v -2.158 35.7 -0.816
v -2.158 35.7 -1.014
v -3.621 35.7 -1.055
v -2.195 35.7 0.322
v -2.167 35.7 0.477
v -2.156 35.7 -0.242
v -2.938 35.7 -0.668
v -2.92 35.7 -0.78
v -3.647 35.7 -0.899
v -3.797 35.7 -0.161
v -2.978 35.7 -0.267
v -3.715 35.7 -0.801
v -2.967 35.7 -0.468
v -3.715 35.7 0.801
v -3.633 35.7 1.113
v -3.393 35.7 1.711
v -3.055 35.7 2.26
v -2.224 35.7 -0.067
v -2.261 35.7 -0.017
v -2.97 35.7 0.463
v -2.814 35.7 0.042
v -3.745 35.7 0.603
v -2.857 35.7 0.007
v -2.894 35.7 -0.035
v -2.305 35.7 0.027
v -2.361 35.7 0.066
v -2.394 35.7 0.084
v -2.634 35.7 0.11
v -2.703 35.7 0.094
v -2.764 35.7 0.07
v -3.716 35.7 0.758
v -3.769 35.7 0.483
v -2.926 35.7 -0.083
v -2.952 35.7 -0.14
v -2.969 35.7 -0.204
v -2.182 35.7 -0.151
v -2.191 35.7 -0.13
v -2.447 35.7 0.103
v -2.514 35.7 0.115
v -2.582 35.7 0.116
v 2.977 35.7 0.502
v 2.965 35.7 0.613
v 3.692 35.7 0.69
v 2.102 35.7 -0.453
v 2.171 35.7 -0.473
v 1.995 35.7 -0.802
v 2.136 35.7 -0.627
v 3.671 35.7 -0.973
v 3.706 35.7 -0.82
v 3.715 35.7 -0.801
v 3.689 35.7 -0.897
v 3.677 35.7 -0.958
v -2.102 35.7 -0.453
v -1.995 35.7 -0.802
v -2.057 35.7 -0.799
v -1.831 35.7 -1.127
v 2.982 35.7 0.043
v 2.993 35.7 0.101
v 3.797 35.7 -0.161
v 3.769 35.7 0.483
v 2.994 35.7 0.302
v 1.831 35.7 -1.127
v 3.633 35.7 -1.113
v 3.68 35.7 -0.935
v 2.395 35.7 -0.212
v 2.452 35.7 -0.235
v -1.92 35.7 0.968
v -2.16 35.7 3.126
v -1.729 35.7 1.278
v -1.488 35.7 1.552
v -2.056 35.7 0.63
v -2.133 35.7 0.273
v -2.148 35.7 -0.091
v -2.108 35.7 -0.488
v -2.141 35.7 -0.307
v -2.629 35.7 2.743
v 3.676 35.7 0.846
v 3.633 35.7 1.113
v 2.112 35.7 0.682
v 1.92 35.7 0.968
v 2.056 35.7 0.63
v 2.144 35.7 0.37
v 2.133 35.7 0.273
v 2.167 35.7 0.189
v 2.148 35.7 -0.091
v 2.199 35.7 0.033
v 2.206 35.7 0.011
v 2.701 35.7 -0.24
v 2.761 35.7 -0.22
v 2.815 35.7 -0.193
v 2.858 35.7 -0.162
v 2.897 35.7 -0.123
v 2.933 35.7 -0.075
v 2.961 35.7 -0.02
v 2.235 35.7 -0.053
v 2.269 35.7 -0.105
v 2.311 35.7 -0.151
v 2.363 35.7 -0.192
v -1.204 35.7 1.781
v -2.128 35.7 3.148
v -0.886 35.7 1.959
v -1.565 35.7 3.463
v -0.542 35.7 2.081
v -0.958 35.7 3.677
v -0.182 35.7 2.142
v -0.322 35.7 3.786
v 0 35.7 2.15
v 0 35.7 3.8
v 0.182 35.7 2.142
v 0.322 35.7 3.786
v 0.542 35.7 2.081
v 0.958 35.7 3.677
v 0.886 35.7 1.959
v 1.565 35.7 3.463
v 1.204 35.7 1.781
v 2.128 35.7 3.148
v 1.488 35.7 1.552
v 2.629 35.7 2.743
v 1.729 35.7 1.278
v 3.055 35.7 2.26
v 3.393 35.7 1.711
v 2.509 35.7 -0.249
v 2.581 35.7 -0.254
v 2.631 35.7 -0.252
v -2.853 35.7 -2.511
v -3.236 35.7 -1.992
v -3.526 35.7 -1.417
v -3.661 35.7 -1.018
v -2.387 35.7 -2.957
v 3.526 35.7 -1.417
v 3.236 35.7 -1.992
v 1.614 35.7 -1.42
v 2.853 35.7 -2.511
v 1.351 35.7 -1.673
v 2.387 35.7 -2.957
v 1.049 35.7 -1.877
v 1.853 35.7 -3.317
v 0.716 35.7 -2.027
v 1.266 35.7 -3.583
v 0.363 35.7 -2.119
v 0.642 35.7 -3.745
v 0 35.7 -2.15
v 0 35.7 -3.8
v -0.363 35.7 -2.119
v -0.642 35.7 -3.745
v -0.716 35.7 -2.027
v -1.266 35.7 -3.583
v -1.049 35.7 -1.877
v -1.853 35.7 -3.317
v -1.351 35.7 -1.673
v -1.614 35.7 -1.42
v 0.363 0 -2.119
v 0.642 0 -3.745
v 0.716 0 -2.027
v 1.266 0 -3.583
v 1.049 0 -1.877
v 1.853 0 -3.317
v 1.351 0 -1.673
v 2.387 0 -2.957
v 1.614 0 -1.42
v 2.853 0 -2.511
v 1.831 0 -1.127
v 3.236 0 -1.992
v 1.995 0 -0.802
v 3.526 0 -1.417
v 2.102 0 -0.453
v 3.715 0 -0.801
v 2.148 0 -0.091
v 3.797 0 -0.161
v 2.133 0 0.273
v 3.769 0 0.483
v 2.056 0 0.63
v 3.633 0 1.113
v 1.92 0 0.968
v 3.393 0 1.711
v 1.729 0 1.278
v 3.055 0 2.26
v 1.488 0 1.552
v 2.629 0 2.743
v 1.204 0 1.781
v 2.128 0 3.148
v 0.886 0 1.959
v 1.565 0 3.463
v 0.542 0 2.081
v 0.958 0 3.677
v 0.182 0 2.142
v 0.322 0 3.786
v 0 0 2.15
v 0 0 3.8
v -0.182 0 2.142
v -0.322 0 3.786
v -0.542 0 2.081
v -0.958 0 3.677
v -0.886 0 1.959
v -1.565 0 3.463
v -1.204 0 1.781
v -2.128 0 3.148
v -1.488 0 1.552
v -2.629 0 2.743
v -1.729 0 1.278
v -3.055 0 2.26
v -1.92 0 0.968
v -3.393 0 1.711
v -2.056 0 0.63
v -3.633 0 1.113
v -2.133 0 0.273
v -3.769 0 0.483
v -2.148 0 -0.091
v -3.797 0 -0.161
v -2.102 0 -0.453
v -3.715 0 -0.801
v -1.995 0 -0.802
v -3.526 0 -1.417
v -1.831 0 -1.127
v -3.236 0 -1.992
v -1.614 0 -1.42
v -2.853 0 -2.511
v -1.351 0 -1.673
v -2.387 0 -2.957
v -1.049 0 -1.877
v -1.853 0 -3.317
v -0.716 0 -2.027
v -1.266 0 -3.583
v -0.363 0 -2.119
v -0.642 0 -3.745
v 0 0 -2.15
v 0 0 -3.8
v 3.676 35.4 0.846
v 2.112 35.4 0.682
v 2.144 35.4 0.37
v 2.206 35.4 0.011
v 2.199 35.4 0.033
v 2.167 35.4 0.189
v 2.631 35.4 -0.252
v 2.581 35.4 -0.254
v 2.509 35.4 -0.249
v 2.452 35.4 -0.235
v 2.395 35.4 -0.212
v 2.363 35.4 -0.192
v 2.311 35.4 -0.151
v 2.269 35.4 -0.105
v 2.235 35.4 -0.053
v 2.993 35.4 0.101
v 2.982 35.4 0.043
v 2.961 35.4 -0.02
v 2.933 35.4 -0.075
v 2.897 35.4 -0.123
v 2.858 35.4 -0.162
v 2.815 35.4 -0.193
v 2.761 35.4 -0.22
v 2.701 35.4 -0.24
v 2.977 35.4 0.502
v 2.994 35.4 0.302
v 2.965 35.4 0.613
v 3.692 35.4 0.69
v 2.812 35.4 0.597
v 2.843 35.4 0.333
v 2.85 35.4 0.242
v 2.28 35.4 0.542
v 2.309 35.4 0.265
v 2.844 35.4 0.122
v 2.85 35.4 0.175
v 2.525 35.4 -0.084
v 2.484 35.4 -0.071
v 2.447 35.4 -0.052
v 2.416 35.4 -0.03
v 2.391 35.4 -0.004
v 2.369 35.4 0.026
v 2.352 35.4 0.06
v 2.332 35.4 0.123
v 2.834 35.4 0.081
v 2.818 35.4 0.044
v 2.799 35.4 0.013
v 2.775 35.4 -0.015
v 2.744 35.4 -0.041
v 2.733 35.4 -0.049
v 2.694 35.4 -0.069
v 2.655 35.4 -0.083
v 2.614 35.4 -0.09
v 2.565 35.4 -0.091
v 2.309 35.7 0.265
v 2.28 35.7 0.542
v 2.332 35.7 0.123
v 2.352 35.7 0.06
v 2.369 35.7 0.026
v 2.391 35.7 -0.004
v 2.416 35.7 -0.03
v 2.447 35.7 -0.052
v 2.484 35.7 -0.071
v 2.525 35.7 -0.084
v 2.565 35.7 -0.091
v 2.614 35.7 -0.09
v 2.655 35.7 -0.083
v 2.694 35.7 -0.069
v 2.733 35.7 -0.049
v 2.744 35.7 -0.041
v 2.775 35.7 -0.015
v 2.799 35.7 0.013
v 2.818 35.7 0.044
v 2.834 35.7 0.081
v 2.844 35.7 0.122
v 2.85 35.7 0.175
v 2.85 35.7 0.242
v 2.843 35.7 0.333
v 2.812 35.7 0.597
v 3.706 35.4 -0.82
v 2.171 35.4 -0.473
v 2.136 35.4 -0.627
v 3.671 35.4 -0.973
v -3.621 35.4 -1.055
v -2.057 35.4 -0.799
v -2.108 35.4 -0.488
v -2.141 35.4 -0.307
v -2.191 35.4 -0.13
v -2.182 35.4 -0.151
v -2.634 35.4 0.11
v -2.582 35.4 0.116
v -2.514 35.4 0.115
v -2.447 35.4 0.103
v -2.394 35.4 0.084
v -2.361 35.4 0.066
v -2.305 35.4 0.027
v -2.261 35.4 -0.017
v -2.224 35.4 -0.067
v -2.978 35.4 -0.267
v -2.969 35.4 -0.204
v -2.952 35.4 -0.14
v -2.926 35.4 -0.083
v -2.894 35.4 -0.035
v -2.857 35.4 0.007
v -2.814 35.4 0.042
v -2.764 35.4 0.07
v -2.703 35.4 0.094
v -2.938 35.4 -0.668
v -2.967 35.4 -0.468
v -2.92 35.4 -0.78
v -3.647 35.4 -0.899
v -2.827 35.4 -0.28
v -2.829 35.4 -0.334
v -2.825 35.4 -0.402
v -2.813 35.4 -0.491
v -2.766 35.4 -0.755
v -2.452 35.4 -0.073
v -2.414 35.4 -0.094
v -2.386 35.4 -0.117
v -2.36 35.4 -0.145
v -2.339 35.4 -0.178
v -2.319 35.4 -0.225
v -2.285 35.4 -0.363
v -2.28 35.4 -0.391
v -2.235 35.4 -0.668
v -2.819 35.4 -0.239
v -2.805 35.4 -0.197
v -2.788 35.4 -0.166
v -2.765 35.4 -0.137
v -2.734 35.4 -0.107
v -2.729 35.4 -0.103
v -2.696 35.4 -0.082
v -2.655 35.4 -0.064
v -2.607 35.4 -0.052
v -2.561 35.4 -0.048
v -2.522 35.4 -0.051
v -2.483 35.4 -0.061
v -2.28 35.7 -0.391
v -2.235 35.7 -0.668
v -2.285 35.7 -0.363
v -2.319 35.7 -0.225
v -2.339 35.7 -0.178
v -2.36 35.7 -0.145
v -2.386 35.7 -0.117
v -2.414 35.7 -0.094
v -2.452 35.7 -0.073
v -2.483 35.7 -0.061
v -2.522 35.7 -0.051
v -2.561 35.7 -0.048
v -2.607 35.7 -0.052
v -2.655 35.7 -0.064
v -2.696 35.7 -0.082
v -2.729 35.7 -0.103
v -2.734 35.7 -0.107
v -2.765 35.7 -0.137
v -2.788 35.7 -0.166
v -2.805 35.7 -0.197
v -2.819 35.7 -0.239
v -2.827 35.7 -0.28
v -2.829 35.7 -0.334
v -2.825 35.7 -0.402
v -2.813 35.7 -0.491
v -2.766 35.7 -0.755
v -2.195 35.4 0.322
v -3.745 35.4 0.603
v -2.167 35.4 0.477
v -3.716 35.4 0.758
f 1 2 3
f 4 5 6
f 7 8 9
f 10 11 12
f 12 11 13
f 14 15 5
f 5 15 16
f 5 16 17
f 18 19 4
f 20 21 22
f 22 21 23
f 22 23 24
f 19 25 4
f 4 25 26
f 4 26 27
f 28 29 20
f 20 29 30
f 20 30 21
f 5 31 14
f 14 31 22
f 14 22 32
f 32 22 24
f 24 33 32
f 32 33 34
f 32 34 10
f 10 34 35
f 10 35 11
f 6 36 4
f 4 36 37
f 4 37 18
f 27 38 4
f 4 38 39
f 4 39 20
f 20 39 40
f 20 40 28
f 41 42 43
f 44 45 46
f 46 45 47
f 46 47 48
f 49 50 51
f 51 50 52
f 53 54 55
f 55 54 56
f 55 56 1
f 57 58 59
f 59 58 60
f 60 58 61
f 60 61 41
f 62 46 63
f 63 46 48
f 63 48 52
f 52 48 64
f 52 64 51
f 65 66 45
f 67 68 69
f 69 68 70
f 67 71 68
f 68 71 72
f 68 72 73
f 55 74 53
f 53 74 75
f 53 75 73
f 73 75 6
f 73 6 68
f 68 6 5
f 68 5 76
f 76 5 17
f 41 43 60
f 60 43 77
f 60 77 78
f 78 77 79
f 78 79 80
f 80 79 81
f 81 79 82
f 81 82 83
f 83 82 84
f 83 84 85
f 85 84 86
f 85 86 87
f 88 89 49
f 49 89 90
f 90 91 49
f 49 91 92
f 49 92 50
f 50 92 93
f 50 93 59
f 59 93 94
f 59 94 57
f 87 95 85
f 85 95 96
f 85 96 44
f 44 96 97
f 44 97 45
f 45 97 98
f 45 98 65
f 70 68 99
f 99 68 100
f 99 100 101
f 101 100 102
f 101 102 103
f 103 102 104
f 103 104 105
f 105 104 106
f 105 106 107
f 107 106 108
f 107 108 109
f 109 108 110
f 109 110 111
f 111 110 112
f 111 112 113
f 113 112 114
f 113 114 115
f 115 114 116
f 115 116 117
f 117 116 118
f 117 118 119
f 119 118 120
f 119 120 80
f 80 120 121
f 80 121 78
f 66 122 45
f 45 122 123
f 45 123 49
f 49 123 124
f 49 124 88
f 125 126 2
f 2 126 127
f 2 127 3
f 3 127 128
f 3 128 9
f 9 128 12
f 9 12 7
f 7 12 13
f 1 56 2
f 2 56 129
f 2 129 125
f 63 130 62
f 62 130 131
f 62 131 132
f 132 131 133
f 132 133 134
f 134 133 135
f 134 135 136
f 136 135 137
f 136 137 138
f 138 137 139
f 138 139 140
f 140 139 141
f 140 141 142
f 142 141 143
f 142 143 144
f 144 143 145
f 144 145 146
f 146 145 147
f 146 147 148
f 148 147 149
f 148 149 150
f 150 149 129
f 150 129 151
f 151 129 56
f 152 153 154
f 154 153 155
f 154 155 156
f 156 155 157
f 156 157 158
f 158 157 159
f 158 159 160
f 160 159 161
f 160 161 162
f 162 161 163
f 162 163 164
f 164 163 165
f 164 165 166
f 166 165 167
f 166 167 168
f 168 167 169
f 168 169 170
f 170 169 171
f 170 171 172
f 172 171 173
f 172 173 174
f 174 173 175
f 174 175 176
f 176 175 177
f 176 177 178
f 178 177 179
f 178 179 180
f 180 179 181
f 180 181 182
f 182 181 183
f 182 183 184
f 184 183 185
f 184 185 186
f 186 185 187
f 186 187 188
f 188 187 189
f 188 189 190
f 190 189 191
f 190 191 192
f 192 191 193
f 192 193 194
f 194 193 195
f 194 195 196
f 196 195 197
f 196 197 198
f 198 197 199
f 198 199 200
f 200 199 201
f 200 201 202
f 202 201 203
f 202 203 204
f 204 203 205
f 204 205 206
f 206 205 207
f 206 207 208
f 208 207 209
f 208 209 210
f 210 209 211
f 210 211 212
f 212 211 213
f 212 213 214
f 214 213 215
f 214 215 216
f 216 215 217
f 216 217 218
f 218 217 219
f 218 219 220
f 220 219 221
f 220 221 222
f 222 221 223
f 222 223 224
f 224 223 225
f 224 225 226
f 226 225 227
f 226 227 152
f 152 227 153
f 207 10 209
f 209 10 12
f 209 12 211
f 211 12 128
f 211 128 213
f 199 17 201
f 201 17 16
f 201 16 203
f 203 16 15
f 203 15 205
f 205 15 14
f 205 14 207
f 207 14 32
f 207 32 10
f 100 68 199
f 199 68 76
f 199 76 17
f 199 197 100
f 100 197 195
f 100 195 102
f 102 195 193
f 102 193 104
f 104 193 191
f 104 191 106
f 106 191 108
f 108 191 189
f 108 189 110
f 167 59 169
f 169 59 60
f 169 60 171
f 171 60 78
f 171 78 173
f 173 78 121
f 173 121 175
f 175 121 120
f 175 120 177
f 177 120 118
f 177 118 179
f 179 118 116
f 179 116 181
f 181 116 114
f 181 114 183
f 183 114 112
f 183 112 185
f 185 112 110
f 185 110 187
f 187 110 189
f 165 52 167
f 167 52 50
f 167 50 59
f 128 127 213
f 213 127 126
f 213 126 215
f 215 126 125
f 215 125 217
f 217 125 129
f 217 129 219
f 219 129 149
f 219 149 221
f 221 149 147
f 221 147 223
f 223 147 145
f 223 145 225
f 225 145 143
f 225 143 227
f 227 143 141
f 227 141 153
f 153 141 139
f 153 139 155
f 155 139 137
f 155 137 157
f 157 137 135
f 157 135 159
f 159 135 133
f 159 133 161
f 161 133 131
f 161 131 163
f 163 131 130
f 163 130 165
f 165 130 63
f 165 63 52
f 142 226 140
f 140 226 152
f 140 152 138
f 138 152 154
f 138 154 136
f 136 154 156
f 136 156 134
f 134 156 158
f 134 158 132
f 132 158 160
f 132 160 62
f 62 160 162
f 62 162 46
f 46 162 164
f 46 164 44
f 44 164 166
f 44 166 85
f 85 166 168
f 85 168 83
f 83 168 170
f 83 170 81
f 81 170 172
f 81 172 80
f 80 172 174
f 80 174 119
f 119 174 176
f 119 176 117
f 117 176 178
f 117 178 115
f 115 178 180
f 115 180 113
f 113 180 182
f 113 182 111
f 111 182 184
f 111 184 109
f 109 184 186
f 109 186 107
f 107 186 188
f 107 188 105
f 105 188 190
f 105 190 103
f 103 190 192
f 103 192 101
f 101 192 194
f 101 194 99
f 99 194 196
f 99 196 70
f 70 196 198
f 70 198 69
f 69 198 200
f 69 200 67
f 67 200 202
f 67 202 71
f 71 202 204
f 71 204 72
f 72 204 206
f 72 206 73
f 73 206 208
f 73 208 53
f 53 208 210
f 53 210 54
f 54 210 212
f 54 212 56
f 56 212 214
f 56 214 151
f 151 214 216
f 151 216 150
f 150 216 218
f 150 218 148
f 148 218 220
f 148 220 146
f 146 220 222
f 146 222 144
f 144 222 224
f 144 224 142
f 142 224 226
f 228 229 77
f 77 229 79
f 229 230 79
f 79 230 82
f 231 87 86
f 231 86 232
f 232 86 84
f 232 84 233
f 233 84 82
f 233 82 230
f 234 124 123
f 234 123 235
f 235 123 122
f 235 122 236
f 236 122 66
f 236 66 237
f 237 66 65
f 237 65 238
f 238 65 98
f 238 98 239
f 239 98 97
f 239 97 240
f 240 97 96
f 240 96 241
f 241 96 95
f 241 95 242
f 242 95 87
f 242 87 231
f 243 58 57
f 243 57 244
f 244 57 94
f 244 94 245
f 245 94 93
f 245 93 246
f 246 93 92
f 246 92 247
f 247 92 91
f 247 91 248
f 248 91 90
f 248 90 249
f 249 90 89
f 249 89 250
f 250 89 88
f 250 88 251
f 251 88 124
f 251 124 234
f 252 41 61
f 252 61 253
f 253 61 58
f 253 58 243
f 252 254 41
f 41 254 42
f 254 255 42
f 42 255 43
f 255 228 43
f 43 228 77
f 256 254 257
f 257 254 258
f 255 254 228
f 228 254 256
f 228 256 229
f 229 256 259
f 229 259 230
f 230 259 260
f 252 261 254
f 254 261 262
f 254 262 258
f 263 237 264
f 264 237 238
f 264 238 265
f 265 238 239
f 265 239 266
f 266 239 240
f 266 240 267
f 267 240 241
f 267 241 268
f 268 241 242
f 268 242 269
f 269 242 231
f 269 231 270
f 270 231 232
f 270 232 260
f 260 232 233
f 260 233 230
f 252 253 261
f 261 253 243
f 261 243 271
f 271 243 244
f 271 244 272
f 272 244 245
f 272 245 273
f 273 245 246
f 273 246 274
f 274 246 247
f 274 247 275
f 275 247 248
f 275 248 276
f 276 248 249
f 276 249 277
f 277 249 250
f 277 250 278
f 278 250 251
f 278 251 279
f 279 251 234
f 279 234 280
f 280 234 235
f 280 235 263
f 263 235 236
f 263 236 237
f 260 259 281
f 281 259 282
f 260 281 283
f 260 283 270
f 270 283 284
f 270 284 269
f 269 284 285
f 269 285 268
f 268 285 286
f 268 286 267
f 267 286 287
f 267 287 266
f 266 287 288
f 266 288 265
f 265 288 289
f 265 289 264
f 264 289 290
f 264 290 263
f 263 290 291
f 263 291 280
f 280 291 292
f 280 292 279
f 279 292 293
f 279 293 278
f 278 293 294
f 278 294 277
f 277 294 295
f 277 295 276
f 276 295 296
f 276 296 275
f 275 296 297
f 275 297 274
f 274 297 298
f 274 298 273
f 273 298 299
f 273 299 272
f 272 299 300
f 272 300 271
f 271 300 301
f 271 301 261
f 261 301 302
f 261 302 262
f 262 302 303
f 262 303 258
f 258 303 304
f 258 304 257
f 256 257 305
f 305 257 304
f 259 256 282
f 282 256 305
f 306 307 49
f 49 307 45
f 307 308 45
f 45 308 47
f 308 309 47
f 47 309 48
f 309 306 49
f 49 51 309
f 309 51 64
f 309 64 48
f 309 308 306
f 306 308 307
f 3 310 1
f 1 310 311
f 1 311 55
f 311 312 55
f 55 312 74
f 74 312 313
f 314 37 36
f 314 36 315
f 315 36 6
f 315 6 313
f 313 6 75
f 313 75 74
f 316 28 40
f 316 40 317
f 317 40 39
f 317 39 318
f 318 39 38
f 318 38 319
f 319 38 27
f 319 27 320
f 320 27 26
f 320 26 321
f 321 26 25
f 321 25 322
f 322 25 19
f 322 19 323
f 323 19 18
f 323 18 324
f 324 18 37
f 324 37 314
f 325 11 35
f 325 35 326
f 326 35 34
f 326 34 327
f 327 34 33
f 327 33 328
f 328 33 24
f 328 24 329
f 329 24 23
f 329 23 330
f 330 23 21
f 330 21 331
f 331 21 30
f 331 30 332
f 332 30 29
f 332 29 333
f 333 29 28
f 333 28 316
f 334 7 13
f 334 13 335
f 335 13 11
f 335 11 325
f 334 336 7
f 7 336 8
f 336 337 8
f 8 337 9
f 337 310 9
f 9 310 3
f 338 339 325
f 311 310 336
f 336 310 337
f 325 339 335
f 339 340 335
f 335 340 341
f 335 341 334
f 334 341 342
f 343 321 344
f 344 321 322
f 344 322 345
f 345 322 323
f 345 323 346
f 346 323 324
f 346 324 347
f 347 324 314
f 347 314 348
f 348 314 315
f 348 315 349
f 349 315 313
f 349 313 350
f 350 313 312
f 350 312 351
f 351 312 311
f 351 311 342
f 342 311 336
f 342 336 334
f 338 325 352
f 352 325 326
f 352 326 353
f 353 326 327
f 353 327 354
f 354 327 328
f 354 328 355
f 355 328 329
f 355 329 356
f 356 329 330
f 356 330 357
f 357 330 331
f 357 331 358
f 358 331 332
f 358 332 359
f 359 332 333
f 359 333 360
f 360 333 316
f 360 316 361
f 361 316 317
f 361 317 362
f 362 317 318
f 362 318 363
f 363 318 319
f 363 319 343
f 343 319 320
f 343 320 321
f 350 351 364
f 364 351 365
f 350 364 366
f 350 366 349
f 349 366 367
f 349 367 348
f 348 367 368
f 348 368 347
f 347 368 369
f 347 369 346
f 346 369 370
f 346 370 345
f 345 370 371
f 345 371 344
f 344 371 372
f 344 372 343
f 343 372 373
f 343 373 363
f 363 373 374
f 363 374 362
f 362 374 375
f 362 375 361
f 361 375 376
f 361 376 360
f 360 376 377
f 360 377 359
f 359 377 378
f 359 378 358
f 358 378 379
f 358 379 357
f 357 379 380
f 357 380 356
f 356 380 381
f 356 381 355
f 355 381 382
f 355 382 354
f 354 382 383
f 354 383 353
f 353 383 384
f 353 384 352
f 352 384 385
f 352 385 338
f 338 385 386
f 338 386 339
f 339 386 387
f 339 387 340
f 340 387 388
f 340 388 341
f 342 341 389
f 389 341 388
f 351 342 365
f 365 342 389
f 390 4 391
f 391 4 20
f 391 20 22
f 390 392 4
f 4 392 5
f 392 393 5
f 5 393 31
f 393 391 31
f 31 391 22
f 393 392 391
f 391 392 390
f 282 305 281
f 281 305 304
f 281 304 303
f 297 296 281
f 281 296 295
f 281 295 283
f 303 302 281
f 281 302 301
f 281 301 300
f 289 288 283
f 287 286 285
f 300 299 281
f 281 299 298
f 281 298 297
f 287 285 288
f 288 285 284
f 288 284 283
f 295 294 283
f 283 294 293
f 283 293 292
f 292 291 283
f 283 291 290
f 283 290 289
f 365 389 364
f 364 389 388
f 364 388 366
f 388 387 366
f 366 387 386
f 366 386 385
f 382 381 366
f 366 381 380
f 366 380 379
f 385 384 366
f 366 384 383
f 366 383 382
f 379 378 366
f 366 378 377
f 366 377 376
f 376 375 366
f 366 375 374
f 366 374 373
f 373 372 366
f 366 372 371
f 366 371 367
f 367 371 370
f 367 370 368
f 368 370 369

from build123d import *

# Parameters (mm, degrees)
SKETCH1_R           = 3.8
SKETCH1_R_2         = 2.15
BOSS_EXTRUDE1_DEPTH = 35.7
CUT_EXTRUDE1_DEPTH  = 0.3


with BuildPart() as part:
    # Sketch1 → Boss-Extrude1 (new body)
    with BuildSketch(Plane(origin=(0, 0, 0), x_dir=(1, 0, 0), z_dir=(0, 1, 0))):
        with Locations(Location((0, 0, 0), (0, 0, 90))):
            Circle(SKETCH1_R)
        with Locations(Location((0, 0, 0), (0, 0, 90))):
            Circle(SKETCH1_R_2, mode=Mode.SUBTRACT)
    extrude(amount=BOSS_EXTRUDE1_DEPTH)

    # Sketch2 → Cut-Extrude1 (cut)
    # profile 1 of 4: a face of its own
    with BuildSketch(Plane(origin=(0, 35.7, 0), x_dir=(1, 0, 0), z_dir=(0, 1, 0))):
        with BuildLine():
            Line((2.111656105, -0.681757882), (2.144411013, -0.370109244))
            add(Edge.make_bspline(
                [(2.144411013, -0.370109244), (2.146802183, -0.348691162), (2.15138598, -0.307633396), (2.158693119, -0.248902879), (2.165911145, -0.195653849), (2.173439795, -0.148026639), (2.181405599, -0.105945418), (2.189365932, -0.069370665), (2.196899512, -0.038121368), (2.203230185, -0.019522424), (2.206104723, -0.011077293)],
                knots=[0, 0, 0, 0, 1.417373572, 2.717059047, 3.892315439, 4.951364628, 5.887982497, 6.708448809, 7.413551636, 8, 8, 8, 8], degree=3))
            add(Edge.make_bspline(
                [(2.206104723, -0.011077293), (2.210142486, -0.000387677), (2.218120236, 0.020732699), (2.233480051, 0.050530823), (2.249714506, 0.079217068), (2.26903293, 0.105377158), (2.28975844, 0.130224476), (2.312780938, 0.153046655), (2.337556691, 0.174424753), (2.364307409, 0.193873427), (2.392778115, 0.210986132), (2.422871362, 0.225484332), (2.454400246, 0.23669106), (2.487041624, 0.245969514), (2.521307609, 0.251371473), (2.556788909, 0.254755049), (2.593708427, 0.254583895), (2.61857229, 0.252608033), (2.631282507, 0.251597988)],
                knots=[0, 0, 0, 0, 1.011284266, 1.998079665, 2.96593116, 3.927568455, 4.873724646, 5.829799179, 6.795279379, 7.770029274, 8.755528345, 9.734069651, 10.723185245, 11.716348137, 12.735145537, 13.790957307, 14.870754256, 16, 16, 16, 16], degree=3))
            add(Edge.make_bspline(
                [(2.631282507, 0.251597988), (2.644032058, 0.24997818), (2.668933898, 0.246814446), (2.705191942, 0.239067164), (2.739499602, 0.22904372), (2.771695562, 0.216250901), (2.801935318, 0.201182094), (2.830167738, 0.18375954), (2.856506904, 0.163892672), (2.880584442, 0.141642816), (2.902598289, 0.117288438), (2.922659945, 0.091347366), (2.940268337, 0.063416255), (2.955457965, 0.033787663), (2.968650724, 0.002594273), (2.978949316, -0.030497322), (2.987853849, -0.065140381), (2.991380402, -0.089158794), (2.993176538, -0.101391796)],
                knots=[0, 0, 0, 0, 1.120443029, 2.188398027, 3.229732507, 4.234008471, 5.205583901, 6.172795254, 7.123159449, 8.078367438, 9.027336717, 9.98330492, 10.934837467, 11.902358037, 12.884432561, 13.884316223, 14.922444945, 16, 16, 16, 16], degree=3))
            add(Edge.make_bspline(
                [(2.993176538, -0.101391796), (2.994230251, -0.111454082), (2.996521933, -0.133338158), (2.997952687, -0.169220751), (2.997758266, -0.210688547), (2.99653436, -0.257987318), (2.99350795, -0.310882297), (2.989330268, -0.36950307), (2.984003426, -0.433765073), (2.979373477, -0.478452172), (2.976958088, -0.501764893)],
                knots=[0, 0, 0, 0, 0.604865624, 1.315498741, 2.145858656, 3.084317767, 4.144404289, 5.313618666, 6.59854729, 8, 8, 8, 8], degree=3))
            Line((2.976958088, -0.501764893), (2.965191762, -0.613385986))
            Line((2.965191762, -0.613385986), (3.69247792, -0.689708102))
            Line((3.69247792, -0.689708102), (3.675941462, -0.846168438))
            Line((3.675941462, -0.846168438), (2.111656105, -0.681757882))
        make_face()
        with BuildLine():
            Line((2.280200776, -0.541515995), (2.811911514, -0.597167537))
            Line((2.811911514, -0.597167537), (2.843076377, -0.332902212))
            add(Edge.make_bspline(
                [(2.843076377, -0.332902212), (2.844289329, -0.319974038), (2.846633891, -0.294984657), (2.849267306, -0.258732107), (2.850574992, -0.225003014), (2.8506223, -0.193920252), (2.849446171, -0.165468856), (2.846833591, -0.139695973), (2.843533978, -0.116385305), (2.837224352, -0.089138127), (2.826277417, -0.05801598), (2.808152361, -0.023948438), (2.784508643, 0.006287227), (2.756461903, 0.032531622), (2.725026024, 0.054952555), (2.690476942, 0.072174184), (2.653338622, 0.084201266), (2.627543305, 0.088078292), (2.61442804, 0.09004951)],
                knots=[0, 0, 0, 0, 1.137510035, 2.198738341, 3.183774331, 4.093820263, 4.921124839, 5.676965373, 6.362509616, 6.981975284, 8.12447774, 9.242103714, 10.347315548, 11.470636665, 12.59656481, 13.717849775, 14.83967295, 16, 16, 16, 16], degree=3))
            add(Edge.make_bspline(
                [(2.61442804, 0.09004951), (2.601492156, 0.090867689), (2.575975574, 0.092481581), (2.537925492, 0.088020007), (2.500904783, 0.078506725), (2.46570153, 0.063177958), (2.43299178, 0.043746262), (2.404191117, 0.019855084), (2.379800983, -0.008048068), (2.363216589, -0.034756124), (2.351731956, -0.058692023), (2.344337638, -0.079917763), (2.337050019, -0.103790363), (2.329926737, -0.130456035), (2.324165305, -0.160160444), (2.318330265, -0.192568564), (2.313285026, -0.227894023), (2.310555246, -0.252437869), (2.309139579, -0.265166335)],
                knots=[0, 0, 0, 0, 1.162655522, 2.293387438, 3.425402363, 4.586027317, 5.731110208, 6.83356732, 7.933882776, 9.046497222, 9.647242429, 10.316155155, 11.063354823, 11.890427355, 12.794535371, 13.781081296, 14.849266247, 16, 16, 16, 16], degree=3))
            Line((2.309139579, -0.265166335), (2.280200776, -0.541515995))
        make_face(mode=Mode.SUBTRACT)
    # profile 2 of 4: a face of its own
    with BuildSketch(Plane(origin=(0, 35.7, 0), x_dir=(1, 0, 0), z_dir=(0, 1, 0))):
        Polygon((2.170881214, 0.473456425), (2.136218253, 0.627054682), (3.671246799, 0.973366281), (3.705909759, 0.819768024), align=None)
    # profile 3 of 4: a face of its own
    with BuildSketch(Plane(origin=(0, 35.7, 0), x_dir=(1, 0, 0), z_dir=(0, 1, 0))):
        with BuildLine():
            Line((-2.056988676, 0.799308725), (-2.108188095, 0.487660087))
            add(Edge.make_bspline(
                [(-2.108188095, 0.487660087), (-2.111708879, 0.466232817), (-2.118445766, 0.425232539), (-2.129421133, 0.36665679), (-2.139718713, 0.313480105), (-2.150281282, 0.265914926), (-2.160212249, 0.223828754), (-2.170557002, 0.187532109), (-2.179974067, 0.156559724), (-2.187465233, 0.138231414), (-2.190870387, 0.129900171)],
                knots=[0, 0, 0, 0, 1.41672968, 2.710859107, 3.888203329, 4.950446671, 5.889832269, 6.708755629, 7.413057157, 8, 8, 8, 8], degree=3))
            add(Edge.make_bspline(
                [(-2.190870387, 0.129900171), (-2.195556444, 0.11941634), (-2.204838325, 0.098650549), (-2.221929721, 0.069508001), (-2.240455136, 0.041959041), (-2.260630824, 0.016005619), (-2.28356608, -0.007341147), (-2.307553717, -0.029678541), (-2.334263373, -0.049103372), (-2.362013715, -0.067435737), (-2.391696978, -0.083048929), (-2.422778873, -0.095769744), (-2.455093773, -0.105304128), (-2.488524604, -0.111948097), (-2.523172883, -0.116205202), (-2.559155273, -0.11708093), (-2.596246189, -0.114743131), (-2.621154486, -0.111310806), (-2.633856665, -0.109560466)],
                knots=[0, 0, 0, 0, 1.008565843, 1.997711397, 2.964088398, 3.925828959, 4.881231488, 5.837542023, 6.8027058, 7.77948986, 8.758803017, 9.744916733, 10.726487241, 11.714930589, 12.737596956, 13.790702482, 14.873351644, 16, 16, 16, 16], degree=3))
            add(Edge.make_bspline(
                [(-2.633856665, -0.109560466), (-2.646618171, -0.107204254), (-2.671598778, -0.102591978), (-2.707626521, -0.092636992), (-2.741459416, -0.080586731), (-2.773228531, -0.066238595), (-2.802791732, -0.049368652), (-2.830283852, -0.030242912), (-2.855627907, -0.008737139), (-2.878770231, 0.014985273), (-2.899399946, 0.040920795), (-2.917983767, 0.068252889), (-2.933935366, 0.097479257), (-2.94758708, 0.128207774), (-2.958694781, 0.160590944), (-2.967721239, 0.194453712), (-2.973992641, 0.230009053), (-2.976403376, 0.254328418), (-2.977624193, 0.266643961)],
                knots=[0, 0, 0, 0, 1.121688944, 2.195702573, 3.227831976, 4.224598539, 5.20573391, 6.166885501, 7.116340498, 8.07565474, 9.027584121, 9.978365483, 10.930074198, 11.902608988, 12.882373339, 13.887282389, 14.930101006, 16, 16, 16, 16], degree=3))
            add(Edge.make_bspline(
                [(-2.977624193, 0.266643961), (-2.978173535, 0.276817647), (-2.979369039, 0.2989581), (-2.978416522, 0.335055248), (-2.97575293, 0.376716727), (-2.971541929, 0.424106537), (-2.965863423, 0.477242518), (-2.958062562, 0.535941987), (-2.94893467, 0.60032135), (-2.941666402, 0.644981141), (-2.937873091, 0.668289093)],
                knots=[0, 0, 0, 0, 0.604646202, 1.315859532, 2.141770145, 3.082979908, 4.139987401, 5.313936572, 6.598143075, 8, 8, 8, 8], degree=3))
            Line((-2.937873091, 0.668289093), (-2.919746589, 0.779910187))
            Line((-2.919746589, 0.779910187), (-3.647032747, 0.898845483))
            Line((-3.647032747, 0.898845483), (-3.621274033, 1.05530582))
            Line((-3.621274033, 1.05530582), (-2.056988676, 0.799308725))
        make_face()
        with BuildLine():
            Line((-2.234755603, 0.667653076), (-2.766466341, 0.754787491))
            Line((-2.766466341, 0.754787491), (-2.812895628, 0.490840175))
            add(Edge.make_bspline(
                [(-2.812895628, 0.490840175), (-2.815008197, 0.477922044), (-2.81910293, 0.452883193), (-2.823415086, 0.416473146), (-2.826657363, 0.382653714), (-2.828734553, 0.35136981), (-2.829006368, 0.322605404), (-2.828117211, 0.296281893), (-2.825997962, 0.272585261), (-2.82146303, 0.244692822), (-2.811909992, 0.212873549), (-2.795853791, 0.177447593), (-2.773735167, 0.14572244), (-2.747345259, 0.117404003), (-2.716955042, 0.093039199), (-2.682766519, 0.074626688), (-2.646499979, 0.05943945), (-2.620631779, 0.054501823), (-2.607461934, 0.051988011)],
                knots=[0, 0, 0, 0, 1.136739534, 2.20331033, 3.183538476, 4.087470488, 4.925317766, 5.680760515, 6.37425325, 6.990267555, 8.132251804, 9.248525494, 10.354270943, 11.474675275, 12.601942906, 13.718823886, 14.838622839, 16, 16, 16, 16], degree=3))
            add(Edge.make_bspline(
                [(-2.607461934, 0.051988011), (-2.594553232, 0.050310074), (-2.568992641, 0.046987581), (-2.53033584, 0.049159746), (-2.492576023, 0.056899765), (-2.456092773, 0.069822513), (-2.422214957, 0.08795422), (-2.391742809, 0.110088649), (-2.365813449, 0.136873568), (-2.347514733, 0.162509328), (-2.334999931, 0.186178026), (-2.325732889, 0.206848206), (-2.317397434, 0.230587534), (-2.308596743, 0.25697407), (-2.300834458, 0.286429563), (-2.293637242, 0.318843854), (-2.286151391, 0.353972674), (-2.282041679, 0.378564756), (-2.279912855, 0.391303416)],
                knots=[0, 0, 0, 0, 1.158878903, 2.294702534, 3.43304114, 4.587206463, 5.733290821, 6.84883061, 7.931810954, 9.043940833, 9.644510014, 10.317362802, 11.062023369, 11.887125953, 12.797502392, 13.776738287, 14.848353887, 16, 16, 16, 16], degree=3))
            Line((-2.279912855, 0.391303416), (-2.234755603, 0.667653076))
        make_face(mode=Mode.SUBTRACT)
    # profile 4 of 4: a face of its own
    with BuildSketch(Plane(origin=(0, 35.7, 0), x_dir=(1, 0, 0), z_dir=(0, 1, 0))):
        Polygon((-2.194903236, -0.321716904), (-2.166600452, -0.476587196), (-3.716257403, -0.758343006), (-3.744560187, -0.603472713), align=None)
    extrude(amount=-CUT_EXTRUDE1_DEPTH, mode=Mode.SUBTRACT)


solid = part.part
